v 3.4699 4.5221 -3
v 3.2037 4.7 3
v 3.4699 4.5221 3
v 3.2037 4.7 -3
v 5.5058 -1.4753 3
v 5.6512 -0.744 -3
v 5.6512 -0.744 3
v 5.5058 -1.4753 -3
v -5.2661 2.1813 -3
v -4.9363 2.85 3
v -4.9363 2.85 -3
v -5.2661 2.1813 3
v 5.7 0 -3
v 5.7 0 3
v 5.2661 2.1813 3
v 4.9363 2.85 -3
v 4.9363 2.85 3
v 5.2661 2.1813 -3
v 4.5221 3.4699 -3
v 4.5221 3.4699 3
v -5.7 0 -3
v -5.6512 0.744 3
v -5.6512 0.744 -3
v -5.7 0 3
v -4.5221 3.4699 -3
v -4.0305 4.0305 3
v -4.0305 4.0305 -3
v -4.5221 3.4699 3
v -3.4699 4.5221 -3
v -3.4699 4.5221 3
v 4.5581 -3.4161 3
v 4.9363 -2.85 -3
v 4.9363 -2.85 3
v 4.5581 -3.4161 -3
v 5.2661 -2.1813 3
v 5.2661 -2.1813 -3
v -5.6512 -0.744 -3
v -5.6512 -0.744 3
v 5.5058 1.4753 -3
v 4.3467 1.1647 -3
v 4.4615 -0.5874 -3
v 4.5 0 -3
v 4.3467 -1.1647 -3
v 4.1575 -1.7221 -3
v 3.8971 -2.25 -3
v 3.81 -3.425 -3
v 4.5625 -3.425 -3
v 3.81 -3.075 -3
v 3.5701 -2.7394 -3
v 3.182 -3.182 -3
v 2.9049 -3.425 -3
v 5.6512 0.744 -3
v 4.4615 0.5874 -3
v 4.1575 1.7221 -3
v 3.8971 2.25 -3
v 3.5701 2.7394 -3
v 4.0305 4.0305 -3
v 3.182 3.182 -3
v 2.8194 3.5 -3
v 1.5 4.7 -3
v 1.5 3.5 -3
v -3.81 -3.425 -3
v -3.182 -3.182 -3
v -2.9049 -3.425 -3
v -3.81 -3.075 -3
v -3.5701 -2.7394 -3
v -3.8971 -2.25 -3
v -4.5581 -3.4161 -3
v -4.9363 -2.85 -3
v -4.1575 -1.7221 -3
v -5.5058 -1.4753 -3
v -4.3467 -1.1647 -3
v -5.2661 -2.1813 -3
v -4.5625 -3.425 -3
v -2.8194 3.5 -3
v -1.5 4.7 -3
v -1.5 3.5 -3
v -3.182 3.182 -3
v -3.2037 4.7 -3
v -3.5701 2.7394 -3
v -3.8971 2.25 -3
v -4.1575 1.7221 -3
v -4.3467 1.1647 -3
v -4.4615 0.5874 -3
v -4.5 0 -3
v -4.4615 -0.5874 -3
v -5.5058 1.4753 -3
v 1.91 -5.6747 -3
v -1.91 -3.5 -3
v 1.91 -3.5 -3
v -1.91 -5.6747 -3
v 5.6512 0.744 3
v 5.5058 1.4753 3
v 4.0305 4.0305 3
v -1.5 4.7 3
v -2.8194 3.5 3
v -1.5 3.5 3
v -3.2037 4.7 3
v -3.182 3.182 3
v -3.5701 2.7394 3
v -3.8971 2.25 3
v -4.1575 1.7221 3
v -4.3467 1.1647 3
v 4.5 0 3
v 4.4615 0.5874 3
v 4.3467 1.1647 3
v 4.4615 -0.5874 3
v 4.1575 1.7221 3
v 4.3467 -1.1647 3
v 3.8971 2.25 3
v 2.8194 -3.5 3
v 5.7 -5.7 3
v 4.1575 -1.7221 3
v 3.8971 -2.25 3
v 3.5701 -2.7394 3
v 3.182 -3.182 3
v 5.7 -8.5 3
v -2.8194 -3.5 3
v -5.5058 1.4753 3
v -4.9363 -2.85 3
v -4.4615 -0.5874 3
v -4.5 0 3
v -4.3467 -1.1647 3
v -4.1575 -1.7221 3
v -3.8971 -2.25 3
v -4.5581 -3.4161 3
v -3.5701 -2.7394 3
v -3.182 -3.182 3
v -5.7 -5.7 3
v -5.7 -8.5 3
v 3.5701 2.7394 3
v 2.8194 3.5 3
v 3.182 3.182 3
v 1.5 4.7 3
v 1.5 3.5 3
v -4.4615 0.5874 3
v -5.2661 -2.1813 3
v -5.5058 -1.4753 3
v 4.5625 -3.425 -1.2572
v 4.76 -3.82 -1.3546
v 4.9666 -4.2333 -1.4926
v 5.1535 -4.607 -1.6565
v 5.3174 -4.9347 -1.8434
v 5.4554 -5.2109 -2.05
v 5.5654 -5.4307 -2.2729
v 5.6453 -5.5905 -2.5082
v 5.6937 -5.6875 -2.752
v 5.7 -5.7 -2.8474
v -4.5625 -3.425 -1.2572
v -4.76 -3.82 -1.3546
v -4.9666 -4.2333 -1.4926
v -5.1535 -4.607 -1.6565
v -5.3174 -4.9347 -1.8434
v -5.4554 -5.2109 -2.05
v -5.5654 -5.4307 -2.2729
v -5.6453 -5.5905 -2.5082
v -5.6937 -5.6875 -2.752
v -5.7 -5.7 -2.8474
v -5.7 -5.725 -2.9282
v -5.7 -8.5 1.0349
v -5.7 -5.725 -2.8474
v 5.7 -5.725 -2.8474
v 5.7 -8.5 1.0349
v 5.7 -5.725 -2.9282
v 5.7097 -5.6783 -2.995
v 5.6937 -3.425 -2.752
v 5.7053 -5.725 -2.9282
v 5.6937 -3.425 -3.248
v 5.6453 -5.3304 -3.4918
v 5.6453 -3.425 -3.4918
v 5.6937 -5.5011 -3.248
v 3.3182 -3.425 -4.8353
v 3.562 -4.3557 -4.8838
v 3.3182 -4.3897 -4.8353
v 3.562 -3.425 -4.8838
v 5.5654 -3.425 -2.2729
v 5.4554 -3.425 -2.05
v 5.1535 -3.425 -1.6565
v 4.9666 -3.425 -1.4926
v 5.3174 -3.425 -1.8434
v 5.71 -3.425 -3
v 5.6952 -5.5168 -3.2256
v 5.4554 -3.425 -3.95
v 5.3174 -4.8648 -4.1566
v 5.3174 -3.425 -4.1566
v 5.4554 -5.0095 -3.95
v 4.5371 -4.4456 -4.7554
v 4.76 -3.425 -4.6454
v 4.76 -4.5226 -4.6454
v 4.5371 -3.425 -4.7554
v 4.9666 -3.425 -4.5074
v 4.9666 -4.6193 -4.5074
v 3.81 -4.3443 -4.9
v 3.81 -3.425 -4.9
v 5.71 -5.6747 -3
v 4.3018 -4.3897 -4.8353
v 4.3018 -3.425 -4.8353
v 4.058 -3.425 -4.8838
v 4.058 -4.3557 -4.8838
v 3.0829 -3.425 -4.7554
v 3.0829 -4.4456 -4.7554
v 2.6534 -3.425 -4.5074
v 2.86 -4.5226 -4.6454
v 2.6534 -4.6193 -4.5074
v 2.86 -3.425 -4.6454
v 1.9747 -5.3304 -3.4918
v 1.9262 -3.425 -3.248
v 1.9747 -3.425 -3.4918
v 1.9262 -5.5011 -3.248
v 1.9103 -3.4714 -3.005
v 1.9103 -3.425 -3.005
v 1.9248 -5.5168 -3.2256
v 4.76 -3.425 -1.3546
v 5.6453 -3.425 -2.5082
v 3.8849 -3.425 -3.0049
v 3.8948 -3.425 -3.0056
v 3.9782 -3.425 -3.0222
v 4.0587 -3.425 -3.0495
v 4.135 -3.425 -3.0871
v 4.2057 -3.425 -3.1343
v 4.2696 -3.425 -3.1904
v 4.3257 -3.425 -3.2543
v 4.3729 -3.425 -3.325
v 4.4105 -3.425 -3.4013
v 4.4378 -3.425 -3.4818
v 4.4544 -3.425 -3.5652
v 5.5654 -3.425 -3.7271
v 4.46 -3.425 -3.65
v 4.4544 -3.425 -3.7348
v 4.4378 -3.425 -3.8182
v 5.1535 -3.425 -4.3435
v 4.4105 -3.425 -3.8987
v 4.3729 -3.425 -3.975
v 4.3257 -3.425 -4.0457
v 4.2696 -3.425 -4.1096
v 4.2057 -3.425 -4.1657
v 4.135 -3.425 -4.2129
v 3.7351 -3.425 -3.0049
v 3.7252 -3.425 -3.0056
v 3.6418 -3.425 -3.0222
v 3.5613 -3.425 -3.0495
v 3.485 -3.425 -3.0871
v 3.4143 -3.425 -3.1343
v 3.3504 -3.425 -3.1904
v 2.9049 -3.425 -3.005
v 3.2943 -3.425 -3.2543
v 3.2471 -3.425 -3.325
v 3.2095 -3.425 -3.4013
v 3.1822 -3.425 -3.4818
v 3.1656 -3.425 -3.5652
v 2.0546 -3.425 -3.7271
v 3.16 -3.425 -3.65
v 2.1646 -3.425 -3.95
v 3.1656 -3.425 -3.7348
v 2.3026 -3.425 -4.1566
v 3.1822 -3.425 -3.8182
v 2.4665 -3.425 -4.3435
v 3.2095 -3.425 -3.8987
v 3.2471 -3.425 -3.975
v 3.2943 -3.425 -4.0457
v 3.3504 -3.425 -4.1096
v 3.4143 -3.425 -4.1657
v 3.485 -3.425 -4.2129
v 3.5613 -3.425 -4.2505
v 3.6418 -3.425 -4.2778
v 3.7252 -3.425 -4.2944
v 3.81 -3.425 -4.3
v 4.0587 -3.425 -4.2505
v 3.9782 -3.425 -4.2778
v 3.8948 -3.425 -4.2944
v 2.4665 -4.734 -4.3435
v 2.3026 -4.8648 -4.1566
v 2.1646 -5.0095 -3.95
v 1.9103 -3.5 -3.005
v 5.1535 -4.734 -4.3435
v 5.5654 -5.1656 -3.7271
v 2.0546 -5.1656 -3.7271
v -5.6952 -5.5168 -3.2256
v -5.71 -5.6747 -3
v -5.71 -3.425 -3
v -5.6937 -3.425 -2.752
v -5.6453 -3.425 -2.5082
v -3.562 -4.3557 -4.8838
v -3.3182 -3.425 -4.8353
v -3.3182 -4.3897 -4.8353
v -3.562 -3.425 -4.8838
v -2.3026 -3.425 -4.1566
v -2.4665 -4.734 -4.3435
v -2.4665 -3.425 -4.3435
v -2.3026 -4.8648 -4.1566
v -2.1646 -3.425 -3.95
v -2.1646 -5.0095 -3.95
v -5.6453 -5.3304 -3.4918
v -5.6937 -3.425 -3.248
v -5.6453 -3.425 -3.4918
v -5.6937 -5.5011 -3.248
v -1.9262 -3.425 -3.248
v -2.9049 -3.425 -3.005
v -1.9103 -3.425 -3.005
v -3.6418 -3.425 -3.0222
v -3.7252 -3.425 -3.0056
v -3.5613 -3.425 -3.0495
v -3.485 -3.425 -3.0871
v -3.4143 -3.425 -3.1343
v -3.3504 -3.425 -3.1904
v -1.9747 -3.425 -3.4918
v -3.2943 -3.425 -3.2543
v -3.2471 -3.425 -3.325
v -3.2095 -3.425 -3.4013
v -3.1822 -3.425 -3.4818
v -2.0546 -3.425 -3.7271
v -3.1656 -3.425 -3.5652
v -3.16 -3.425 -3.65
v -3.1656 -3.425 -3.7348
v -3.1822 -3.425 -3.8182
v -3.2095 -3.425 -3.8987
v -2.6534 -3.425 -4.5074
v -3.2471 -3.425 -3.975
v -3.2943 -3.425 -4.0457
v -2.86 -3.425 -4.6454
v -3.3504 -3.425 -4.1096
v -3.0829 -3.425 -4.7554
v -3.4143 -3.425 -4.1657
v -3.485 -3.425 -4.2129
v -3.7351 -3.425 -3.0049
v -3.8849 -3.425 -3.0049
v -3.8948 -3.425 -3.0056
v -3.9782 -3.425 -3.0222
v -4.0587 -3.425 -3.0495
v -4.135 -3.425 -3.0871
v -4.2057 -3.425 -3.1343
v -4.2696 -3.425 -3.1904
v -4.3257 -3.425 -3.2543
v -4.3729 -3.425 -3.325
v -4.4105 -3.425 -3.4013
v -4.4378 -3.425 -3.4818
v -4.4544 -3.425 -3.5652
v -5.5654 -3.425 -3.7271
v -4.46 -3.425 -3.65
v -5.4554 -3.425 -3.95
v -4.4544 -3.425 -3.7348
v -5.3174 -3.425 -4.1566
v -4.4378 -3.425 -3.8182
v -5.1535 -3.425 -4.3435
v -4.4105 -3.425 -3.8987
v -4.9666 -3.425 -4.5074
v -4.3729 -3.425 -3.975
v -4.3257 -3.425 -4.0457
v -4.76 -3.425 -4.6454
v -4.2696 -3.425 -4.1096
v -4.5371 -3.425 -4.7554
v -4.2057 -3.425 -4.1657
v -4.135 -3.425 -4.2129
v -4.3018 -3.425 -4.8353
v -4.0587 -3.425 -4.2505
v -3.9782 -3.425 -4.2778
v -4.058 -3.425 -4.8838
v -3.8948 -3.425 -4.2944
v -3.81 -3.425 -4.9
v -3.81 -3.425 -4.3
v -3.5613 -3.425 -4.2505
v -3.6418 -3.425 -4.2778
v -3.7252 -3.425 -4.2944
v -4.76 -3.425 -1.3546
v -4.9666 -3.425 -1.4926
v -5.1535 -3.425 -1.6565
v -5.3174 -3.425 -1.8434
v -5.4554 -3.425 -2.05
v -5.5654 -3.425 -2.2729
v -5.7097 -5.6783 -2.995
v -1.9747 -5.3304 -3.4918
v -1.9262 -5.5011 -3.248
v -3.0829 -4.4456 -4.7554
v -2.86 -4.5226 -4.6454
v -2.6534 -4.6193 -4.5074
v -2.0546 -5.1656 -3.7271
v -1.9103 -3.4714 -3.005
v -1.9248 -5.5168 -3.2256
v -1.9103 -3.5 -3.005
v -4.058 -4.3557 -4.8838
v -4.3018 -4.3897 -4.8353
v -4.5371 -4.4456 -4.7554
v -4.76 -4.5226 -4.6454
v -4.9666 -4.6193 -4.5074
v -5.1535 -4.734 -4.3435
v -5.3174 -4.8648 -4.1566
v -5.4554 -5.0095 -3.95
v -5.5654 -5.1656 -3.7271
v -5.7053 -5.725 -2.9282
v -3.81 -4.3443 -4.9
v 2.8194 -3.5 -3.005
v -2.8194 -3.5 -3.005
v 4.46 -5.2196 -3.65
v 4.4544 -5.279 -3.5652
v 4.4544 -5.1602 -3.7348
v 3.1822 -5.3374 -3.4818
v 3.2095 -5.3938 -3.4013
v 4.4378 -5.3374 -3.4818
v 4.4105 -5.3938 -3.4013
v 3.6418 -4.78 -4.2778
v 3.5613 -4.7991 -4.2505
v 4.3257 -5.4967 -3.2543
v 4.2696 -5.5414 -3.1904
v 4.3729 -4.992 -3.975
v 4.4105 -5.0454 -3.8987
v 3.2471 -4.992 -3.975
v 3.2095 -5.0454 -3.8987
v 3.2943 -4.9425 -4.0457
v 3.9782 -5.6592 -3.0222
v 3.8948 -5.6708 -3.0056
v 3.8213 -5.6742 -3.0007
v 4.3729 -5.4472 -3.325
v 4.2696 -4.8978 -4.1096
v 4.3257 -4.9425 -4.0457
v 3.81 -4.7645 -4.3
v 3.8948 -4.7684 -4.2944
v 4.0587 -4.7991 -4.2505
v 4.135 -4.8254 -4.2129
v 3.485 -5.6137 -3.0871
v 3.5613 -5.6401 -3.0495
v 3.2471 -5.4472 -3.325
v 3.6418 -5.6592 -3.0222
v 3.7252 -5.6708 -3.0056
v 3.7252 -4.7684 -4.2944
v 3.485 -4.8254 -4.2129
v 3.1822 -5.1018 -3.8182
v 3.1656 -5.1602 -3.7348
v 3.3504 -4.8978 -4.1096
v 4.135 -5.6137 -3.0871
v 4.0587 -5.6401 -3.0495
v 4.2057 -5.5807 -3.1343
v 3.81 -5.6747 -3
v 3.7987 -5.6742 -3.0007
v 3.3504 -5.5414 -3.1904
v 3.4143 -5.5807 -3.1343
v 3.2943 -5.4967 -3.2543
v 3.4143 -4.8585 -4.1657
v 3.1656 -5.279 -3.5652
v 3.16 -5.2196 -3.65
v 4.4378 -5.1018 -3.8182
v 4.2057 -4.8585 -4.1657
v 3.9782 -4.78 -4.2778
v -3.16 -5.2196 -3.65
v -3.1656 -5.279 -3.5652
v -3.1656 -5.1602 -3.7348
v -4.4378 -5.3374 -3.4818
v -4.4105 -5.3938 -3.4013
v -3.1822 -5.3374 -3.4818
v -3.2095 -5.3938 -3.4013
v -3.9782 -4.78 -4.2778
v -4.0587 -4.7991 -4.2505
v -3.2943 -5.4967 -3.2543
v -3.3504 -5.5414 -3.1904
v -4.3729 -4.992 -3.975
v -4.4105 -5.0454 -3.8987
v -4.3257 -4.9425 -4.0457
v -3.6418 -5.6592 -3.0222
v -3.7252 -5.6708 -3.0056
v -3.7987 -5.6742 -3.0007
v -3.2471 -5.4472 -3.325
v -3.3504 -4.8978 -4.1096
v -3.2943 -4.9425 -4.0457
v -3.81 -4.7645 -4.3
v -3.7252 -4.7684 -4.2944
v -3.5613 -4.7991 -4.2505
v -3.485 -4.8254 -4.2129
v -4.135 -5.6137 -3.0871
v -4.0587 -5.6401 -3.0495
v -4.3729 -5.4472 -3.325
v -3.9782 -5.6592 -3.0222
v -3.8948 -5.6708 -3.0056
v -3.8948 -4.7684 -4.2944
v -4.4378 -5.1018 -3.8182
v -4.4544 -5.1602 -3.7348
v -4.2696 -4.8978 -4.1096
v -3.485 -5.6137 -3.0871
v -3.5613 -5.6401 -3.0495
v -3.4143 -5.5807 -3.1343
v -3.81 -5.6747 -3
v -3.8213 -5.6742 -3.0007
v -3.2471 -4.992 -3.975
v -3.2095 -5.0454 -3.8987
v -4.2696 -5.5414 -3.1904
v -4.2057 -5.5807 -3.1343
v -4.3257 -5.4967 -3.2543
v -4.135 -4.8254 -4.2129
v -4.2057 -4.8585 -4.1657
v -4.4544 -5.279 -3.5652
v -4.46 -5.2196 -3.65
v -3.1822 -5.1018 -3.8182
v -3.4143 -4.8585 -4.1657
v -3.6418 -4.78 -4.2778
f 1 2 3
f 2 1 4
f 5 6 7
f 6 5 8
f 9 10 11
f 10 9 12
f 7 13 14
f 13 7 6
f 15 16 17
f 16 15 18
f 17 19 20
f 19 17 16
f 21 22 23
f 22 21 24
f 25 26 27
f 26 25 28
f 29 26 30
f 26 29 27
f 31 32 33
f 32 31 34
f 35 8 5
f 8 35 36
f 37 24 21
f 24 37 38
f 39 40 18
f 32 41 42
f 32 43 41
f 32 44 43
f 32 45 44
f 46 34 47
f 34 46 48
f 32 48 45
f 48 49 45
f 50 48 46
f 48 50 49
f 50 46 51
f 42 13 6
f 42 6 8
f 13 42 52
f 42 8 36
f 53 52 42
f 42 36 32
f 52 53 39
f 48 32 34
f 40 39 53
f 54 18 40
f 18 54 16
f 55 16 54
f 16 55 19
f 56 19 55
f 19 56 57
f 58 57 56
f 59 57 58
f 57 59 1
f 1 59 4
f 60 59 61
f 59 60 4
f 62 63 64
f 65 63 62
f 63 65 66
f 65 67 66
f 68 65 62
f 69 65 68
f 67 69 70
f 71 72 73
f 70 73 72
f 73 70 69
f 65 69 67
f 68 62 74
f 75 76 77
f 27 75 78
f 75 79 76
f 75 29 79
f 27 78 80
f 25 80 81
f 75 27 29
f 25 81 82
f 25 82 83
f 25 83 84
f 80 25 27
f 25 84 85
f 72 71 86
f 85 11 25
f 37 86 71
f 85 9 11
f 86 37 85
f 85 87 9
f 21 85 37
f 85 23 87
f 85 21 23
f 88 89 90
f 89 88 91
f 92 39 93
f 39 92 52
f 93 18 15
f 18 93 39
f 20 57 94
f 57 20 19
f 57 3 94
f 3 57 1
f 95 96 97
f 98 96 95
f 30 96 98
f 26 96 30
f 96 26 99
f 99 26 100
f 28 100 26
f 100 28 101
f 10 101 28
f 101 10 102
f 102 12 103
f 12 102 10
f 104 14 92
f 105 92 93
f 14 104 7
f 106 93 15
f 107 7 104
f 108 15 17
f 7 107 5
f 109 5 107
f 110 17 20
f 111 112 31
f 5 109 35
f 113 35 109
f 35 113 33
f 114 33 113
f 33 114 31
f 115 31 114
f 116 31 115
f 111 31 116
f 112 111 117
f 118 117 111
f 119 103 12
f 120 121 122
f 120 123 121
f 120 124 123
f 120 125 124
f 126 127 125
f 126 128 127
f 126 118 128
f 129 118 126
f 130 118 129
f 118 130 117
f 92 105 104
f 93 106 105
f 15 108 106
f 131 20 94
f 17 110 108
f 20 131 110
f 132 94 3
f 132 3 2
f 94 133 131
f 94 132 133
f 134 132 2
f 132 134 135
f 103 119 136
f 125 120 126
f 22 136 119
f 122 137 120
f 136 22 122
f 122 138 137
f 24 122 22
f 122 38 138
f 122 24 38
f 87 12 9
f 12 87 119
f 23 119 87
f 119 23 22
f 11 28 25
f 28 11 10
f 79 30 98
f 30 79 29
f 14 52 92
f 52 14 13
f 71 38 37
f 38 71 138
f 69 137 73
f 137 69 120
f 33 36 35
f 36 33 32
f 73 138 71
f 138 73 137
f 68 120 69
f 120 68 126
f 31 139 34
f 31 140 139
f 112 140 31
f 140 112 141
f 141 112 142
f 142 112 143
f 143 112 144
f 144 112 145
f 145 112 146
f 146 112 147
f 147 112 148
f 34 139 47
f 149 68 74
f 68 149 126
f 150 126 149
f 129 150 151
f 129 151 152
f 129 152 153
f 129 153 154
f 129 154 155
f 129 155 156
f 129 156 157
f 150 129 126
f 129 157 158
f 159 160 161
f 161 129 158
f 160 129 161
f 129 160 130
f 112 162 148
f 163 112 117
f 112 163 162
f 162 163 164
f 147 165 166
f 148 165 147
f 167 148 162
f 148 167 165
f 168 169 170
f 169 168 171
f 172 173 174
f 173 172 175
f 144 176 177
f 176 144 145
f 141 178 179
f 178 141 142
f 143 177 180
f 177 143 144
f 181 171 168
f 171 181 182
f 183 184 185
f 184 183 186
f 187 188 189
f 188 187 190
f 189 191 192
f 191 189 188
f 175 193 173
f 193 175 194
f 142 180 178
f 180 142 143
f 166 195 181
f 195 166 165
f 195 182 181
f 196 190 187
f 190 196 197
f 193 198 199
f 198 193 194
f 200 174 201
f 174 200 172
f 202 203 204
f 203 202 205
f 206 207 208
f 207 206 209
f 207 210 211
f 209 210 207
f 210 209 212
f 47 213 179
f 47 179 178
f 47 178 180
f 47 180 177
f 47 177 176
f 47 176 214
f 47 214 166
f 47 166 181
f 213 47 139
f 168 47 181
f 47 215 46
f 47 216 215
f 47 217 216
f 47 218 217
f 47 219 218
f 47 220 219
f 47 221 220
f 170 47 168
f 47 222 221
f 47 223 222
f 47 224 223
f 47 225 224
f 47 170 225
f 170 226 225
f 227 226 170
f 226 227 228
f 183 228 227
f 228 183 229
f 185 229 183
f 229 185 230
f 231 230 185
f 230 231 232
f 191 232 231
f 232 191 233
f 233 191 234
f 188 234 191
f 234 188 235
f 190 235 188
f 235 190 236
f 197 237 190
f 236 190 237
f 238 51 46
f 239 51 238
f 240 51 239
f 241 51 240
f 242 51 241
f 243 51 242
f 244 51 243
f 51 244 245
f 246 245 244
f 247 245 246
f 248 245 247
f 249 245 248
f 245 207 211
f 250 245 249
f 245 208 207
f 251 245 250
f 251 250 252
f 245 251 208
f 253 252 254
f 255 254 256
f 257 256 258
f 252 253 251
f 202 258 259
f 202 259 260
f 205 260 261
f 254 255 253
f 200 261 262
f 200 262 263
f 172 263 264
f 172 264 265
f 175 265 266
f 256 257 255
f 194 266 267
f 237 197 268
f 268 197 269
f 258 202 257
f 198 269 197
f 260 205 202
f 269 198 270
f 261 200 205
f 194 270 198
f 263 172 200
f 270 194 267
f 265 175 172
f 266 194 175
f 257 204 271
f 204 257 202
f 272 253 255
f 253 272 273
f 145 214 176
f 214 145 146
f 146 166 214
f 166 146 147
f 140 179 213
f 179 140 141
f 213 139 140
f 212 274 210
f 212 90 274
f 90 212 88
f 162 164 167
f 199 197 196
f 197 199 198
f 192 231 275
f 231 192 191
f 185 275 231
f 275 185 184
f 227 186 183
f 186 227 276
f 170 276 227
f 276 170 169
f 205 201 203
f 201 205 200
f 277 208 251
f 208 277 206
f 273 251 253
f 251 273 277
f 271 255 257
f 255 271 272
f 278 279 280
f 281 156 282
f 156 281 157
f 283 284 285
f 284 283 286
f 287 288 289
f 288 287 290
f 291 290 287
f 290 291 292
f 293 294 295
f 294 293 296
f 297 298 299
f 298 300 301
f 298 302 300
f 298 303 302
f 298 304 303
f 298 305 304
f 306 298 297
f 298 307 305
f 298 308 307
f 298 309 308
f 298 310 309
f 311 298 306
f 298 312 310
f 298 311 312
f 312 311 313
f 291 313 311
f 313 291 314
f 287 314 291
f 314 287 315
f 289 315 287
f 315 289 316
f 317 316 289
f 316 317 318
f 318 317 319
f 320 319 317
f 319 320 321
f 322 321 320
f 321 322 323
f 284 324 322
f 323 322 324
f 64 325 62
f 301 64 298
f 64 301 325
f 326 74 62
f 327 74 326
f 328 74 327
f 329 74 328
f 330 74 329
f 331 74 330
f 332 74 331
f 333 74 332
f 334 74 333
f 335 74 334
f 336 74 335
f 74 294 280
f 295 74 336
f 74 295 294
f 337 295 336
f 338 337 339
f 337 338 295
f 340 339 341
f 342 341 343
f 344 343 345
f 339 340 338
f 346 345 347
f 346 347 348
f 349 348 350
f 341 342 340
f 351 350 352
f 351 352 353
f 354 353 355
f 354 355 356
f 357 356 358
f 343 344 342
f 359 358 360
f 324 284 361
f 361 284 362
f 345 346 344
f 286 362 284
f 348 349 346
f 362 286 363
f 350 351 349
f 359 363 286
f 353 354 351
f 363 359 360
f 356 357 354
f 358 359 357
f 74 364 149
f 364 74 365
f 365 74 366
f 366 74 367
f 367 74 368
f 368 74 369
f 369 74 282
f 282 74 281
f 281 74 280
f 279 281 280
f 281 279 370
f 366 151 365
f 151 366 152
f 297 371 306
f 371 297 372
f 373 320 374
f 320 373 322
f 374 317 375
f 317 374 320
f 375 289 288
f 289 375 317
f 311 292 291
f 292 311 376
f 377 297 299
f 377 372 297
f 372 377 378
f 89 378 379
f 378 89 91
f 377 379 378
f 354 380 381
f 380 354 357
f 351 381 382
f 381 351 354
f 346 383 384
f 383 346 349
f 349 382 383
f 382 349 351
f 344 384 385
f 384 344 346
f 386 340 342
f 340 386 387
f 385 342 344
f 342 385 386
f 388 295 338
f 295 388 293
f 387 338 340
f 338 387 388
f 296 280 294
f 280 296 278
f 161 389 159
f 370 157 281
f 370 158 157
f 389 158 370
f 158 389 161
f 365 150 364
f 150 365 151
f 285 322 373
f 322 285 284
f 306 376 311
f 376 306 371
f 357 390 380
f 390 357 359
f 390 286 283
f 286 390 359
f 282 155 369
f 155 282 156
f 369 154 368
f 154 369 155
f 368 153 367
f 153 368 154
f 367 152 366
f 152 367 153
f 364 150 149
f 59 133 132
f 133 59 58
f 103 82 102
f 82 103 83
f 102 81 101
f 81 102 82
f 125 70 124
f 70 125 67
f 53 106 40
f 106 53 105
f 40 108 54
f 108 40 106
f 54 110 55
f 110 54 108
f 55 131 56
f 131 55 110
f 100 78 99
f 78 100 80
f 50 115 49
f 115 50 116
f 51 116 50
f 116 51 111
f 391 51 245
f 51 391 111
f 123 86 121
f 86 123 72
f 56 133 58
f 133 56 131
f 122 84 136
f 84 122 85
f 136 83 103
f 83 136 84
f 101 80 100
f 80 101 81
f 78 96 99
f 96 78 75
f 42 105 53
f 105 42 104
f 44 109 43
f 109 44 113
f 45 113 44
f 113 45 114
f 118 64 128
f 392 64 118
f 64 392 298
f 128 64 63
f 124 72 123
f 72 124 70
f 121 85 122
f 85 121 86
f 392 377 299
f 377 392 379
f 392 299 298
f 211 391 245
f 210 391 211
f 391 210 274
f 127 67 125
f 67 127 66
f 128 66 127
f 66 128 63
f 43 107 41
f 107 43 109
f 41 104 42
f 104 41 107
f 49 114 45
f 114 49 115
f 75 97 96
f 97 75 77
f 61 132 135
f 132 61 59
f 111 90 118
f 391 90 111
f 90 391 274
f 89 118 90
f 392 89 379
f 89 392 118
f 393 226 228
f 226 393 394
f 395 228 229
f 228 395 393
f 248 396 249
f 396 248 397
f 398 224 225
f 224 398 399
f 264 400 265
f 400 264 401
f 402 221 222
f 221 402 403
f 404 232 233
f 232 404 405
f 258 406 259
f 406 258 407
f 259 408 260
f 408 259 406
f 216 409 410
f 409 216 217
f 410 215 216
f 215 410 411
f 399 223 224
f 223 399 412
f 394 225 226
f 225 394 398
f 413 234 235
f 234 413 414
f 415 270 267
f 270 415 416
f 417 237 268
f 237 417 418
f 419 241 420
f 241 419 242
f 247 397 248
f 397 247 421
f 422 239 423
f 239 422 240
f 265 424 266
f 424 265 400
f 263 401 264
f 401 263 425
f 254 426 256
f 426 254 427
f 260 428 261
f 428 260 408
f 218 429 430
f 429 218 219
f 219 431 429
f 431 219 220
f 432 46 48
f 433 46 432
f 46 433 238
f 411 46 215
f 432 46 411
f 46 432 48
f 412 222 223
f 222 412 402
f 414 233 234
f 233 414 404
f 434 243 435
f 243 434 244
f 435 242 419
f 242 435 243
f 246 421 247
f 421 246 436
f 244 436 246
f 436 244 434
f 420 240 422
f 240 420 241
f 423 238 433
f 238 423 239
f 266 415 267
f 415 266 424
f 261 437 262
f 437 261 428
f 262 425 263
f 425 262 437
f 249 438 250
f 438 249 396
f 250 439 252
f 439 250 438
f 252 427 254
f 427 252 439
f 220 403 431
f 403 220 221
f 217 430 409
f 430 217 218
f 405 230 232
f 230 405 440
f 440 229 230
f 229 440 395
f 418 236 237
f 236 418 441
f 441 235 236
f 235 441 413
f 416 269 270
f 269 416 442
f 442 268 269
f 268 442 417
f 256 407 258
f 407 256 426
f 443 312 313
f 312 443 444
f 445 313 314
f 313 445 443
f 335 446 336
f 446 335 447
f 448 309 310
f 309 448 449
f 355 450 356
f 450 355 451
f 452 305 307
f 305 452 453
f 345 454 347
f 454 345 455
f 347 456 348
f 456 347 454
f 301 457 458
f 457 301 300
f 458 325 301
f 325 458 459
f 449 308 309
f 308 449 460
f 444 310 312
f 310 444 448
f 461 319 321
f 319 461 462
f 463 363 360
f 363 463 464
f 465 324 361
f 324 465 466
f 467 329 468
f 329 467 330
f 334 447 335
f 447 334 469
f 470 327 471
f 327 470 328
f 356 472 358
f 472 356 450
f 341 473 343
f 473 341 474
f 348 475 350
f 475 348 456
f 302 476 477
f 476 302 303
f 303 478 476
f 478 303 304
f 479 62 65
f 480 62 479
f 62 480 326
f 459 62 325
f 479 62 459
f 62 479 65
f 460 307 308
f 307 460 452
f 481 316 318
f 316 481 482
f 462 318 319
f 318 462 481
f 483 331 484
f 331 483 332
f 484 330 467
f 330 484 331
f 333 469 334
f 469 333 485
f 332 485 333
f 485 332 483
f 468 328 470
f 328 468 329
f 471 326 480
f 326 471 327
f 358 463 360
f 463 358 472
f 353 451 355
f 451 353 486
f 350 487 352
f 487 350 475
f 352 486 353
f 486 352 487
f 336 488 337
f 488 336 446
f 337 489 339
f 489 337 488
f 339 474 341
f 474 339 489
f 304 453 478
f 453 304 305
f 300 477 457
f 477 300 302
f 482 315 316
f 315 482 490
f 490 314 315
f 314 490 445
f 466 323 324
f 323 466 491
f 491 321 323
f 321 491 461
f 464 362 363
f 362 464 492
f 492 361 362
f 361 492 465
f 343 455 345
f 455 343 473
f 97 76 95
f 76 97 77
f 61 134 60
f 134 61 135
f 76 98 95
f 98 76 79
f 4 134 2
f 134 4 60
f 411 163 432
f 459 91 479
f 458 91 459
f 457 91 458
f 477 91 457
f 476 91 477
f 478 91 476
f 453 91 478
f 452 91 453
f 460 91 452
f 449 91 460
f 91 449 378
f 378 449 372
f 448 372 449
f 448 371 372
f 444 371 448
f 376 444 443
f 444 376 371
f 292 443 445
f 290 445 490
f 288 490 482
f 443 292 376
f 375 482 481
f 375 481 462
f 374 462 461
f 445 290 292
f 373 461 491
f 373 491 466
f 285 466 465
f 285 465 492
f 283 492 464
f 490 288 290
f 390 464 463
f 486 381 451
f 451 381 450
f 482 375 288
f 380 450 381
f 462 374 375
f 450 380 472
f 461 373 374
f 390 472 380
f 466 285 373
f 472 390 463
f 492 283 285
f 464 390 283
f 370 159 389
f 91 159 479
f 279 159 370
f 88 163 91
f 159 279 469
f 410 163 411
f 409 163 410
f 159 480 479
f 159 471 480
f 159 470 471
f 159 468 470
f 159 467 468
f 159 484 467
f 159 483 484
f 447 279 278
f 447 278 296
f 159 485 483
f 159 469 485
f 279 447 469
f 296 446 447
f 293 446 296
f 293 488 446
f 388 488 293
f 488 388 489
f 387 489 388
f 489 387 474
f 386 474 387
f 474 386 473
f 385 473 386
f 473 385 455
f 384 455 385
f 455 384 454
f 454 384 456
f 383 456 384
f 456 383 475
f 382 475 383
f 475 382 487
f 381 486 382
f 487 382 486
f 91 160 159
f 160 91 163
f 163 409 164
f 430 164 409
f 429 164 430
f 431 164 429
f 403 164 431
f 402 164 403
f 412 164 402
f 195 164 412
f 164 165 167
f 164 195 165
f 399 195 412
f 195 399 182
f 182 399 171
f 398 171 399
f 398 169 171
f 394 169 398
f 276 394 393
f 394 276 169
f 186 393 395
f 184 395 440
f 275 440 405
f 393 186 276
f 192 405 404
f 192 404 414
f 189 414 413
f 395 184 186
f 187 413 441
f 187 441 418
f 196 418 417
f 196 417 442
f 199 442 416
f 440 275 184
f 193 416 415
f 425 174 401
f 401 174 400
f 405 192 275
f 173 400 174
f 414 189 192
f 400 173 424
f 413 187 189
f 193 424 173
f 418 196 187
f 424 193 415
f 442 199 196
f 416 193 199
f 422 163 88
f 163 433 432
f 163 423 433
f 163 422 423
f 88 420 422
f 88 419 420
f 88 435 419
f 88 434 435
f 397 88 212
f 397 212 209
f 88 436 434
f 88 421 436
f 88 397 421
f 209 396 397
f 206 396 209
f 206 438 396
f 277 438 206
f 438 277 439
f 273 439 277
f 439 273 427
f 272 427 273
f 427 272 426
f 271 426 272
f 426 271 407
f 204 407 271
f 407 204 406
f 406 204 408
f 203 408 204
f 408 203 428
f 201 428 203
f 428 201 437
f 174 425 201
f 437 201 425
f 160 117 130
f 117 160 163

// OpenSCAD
// Halterung für einen Micromotor
// Kann direkt auf die Platine montiert werden
// 
// Ingo M. Schaefer, Februar 2017

fn = 48;
hoehe = 6;
wandstaerke = 1.2;
motordurchmesser = 9;
sehne = (motordurchmesser+wandstaerke*2)/(sqrt(2));
platinenstaerke = 2;

difference()
{
	union()
	{
		// Der Ring um den Motor
		cylinder(h=hoehe, r=motordurchmesser/2+wandstaerke, center=true, $fn=fn);

		// Stabilisierung
		translate([0,-motordurchmesser/2-wandstaerke,0]) scale([1,2,1]) rotate([0,0,45]) cube([sehne, sehne, hoehe], center=true);

		// Sockel
		translate([0,-motordurchmesser-wandstaerke,0]) cube([motordurchmesser+wandstaerke*2,motordurchmesser,hoehe], center=true);

		// Ohren
		translate([+7.62/2, -motordurchmesser/2-0.075, -hoehe/2]) rotate([90,0,0]) cylinder(r=1.9, h=2.3, center=true, $fn=fn);
		translate([-7.62/2, -motordurchmesser/2-0.075, -hoehe/2]) rotate([90,0,0]) cylinder(r=1.9, h=2.3, center=true, $fn=fn);
	}

	// Innenteil (in der Form des Motors)
	difference() 
	{
		cylinder(h=hoehe+0.01, r=motordurchmesser/2, center=true, $fn=fn);
		translate([0,5+7/2,0]) cube([10,10,hoehe+1], center=true);
		translate([0,-5-7/2,0]) cube([10,10,hoehe+1], center=true);
	}

	// Ohrlöcher
	translate([+7.62/2, -motordurchmesser/2-0.075, -hoehe/2-0.65]) rotate([90,0,0]) cylinder(r=0.65, h=3, center=true, $fn=fn);
	translate([-7.62/2, -motordurchmesser/2-0.075, -hoehe/2-0.65]) rotate([90,0,0]) cylinder(r=0.65, h=3, center=true, $fn=fn);


	// Schlitz
	translate([0,5,0]) cube([3,5,hoehe+1], center=true); 

	// Abflachung oben
	translate([0,motordurchmesser/2+wandstaerke,0]) cube([10,2,hoehe+1], center=true); 

	// Schräge
	translate([0,-15.1,0]) rotate([35,0,0]) cube([motordurchmesser+wandstaerke*2+1,12,hoehe+20], center=true);

	// Abflachung unten
	translate([0,-11,0]) cube([12,5,hoehe+1], center=true); 

}
